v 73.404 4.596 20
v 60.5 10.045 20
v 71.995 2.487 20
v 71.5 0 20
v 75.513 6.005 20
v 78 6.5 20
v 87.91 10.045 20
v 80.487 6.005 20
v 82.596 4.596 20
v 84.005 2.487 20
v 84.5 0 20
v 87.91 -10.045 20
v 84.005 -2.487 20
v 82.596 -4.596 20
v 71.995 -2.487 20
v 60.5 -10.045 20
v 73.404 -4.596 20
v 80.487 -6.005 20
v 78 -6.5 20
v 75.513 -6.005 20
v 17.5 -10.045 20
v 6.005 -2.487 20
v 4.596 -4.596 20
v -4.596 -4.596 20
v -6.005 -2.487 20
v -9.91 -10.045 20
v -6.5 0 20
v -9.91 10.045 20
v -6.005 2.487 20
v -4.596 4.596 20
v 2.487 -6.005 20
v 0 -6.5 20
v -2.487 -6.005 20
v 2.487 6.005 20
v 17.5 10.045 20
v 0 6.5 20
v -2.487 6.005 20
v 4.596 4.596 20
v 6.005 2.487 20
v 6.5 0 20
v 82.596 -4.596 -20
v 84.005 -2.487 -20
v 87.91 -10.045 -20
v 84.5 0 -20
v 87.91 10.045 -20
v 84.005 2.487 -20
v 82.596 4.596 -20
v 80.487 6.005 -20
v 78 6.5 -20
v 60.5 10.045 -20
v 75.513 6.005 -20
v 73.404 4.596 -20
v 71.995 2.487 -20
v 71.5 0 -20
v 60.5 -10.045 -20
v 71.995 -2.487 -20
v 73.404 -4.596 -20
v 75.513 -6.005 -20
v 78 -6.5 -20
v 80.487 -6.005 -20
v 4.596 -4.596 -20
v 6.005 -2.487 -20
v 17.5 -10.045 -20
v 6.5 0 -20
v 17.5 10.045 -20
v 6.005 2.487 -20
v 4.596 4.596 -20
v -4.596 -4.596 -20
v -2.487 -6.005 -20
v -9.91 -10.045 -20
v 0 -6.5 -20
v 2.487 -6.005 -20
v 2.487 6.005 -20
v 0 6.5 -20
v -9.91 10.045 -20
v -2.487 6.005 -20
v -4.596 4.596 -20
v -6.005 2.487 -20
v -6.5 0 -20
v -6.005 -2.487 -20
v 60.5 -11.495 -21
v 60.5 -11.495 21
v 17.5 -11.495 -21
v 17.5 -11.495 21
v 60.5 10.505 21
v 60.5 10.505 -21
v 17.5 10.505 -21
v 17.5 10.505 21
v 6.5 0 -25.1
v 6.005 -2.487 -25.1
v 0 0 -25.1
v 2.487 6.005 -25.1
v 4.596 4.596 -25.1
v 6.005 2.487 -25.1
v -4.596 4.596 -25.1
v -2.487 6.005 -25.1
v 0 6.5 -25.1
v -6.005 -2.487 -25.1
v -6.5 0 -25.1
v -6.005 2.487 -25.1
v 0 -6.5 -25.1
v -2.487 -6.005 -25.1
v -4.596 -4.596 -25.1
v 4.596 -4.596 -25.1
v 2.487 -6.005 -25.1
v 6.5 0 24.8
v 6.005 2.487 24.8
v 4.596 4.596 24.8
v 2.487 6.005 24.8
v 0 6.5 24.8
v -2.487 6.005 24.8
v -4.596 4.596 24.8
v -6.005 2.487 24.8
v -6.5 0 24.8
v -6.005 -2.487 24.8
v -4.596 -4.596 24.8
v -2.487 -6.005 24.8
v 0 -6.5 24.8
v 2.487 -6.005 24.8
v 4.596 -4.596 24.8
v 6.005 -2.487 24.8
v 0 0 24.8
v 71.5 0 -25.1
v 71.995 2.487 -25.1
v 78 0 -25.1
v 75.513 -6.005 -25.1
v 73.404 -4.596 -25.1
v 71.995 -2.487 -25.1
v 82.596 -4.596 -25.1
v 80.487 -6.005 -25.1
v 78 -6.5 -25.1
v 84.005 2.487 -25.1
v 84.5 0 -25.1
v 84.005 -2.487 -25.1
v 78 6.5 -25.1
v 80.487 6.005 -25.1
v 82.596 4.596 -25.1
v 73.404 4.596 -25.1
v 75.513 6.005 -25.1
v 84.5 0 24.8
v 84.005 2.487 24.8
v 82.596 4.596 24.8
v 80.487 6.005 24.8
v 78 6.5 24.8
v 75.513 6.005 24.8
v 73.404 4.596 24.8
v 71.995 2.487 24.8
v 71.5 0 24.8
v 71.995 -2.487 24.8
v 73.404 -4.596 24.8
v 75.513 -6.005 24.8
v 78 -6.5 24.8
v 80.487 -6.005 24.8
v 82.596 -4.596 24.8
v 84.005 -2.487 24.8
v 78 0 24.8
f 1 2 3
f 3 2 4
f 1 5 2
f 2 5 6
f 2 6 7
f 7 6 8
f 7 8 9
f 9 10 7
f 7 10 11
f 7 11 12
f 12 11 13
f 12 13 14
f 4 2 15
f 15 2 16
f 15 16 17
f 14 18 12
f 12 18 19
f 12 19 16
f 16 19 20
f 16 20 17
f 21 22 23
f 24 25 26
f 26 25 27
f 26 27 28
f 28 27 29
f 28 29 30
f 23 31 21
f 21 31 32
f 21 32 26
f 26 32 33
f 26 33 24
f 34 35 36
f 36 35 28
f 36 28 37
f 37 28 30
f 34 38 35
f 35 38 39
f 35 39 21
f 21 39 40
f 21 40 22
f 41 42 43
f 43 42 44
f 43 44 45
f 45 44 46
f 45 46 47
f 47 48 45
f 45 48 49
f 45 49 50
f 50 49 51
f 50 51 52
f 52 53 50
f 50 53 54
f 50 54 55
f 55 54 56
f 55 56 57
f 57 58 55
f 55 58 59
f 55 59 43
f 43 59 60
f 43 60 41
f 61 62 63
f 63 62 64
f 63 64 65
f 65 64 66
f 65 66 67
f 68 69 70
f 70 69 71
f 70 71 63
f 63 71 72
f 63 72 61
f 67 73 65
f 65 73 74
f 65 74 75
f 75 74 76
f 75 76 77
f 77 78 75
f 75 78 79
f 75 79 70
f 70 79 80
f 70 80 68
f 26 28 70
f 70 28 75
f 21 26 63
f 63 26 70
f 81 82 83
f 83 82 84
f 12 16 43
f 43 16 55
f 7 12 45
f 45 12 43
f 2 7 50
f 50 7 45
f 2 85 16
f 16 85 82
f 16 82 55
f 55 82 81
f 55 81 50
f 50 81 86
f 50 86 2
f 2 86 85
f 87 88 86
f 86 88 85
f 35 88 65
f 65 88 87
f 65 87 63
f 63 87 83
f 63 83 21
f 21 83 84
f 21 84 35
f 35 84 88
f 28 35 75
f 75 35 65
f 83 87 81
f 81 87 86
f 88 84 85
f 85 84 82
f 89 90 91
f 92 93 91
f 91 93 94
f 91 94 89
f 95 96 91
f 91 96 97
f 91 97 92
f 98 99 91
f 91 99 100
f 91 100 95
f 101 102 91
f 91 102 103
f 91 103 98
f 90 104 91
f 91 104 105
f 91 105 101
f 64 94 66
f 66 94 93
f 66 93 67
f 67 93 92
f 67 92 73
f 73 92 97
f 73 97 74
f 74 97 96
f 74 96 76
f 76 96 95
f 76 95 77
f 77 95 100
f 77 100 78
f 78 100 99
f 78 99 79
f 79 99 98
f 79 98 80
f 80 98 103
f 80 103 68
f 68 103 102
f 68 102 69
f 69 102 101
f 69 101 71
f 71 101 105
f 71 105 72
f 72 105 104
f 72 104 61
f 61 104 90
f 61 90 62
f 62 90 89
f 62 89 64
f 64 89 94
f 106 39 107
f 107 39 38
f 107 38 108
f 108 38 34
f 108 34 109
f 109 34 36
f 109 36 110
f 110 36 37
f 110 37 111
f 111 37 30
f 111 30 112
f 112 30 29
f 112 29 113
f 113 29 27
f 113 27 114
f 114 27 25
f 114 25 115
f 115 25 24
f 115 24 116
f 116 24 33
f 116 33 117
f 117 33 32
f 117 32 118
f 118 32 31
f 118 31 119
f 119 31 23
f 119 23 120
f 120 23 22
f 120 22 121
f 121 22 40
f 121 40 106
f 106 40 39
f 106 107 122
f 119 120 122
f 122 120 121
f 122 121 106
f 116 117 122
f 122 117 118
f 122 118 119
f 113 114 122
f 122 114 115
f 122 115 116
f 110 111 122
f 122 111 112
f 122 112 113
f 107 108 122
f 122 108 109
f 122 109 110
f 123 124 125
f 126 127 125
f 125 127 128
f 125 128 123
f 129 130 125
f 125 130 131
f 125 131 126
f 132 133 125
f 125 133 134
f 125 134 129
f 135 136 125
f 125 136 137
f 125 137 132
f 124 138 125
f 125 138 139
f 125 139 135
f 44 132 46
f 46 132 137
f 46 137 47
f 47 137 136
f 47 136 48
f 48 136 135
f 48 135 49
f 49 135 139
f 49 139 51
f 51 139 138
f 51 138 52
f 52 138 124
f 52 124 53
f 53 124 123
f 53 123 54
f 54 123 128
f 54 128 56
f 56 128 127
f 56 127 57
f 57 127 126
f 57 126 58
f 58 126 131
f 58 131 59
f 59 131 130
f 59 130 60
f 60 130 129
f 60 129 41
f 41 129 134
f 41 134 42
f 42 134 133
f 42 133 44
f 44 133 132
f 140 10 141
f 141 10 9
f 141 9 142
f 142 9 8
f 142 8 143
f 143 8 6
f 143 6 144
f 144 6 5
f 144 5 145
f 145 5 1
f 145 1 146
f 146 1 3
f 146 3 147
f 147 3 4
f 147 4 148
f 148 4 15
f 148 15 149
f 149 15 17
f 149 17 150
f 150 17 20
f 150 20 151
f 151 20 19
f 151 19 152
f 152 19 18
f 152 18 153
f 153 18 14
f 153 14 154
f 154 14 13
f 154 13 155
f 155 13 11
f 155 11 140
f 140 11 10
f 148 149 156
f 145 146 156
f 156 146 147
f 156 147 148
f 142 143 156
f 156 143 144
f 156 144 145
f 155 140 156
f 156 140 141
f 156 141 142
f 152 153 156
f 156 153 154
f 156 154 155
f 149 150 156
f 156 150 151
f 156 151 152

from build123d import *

# Parameters (mm, degrees)
EXTRUDE_1_DEPTH      = 20
SKETCH_2_W           = 43
SKETCH_2_H           = 22
EXTRUDE_2_DEPTH      = 21
SKETCH_3_R           = 6.5
EXTRUDE_4_DEPTH      = 24.8
EXTRUDE_4_DEPTH_BACK = 25.1


with BuildPart() as part:
    # Эскиз1 → Бобышка-Вытянуть1 (new body, symmetric)
    with BuildSketch(Plane.XY):
        Polygon((17.5, -10.045), (17.5, -11.495), (60.5, -11.495), (60.5, -10.045), (87.91, -10.045), (87.91, 10.045), (60.5, 10.045), (60.5, 10.505), (17.5, 10.505), (17.5, 10.045), (-9.91, 10.045), (-9.91, -10.045), align=None)
    extrude(amount=EXTRUDE_1_DEPTH, both=True)

    # Эскиз2 → Бобышка-Вытянуть2 (add, symmetric)
    with BuildSketch(Plane.XY):
        with Locations((39, -0.495)):
            Rectangle(SKETCH_2_W, SKETCH_2_H)
    extrude(amount=EXTRUDE_2_DEPTH, both=True)

    # Эскиз3 → Бобышка-Вытянуть4 (add, two sides)
    with BuildSketch(Plane.XY) as extrude_4_sk:
        Circle(SKETCH_3_R)
        with Locations((78, 0)):
            Circle(SKETCH_3_R)
    extrude(amount=EXTRUDE_4_DEPTH)
    extrude(extrude_4_sk.sketch, amount=-EXTRUDE_4_DEPTH_BACK)


solid = part.part
